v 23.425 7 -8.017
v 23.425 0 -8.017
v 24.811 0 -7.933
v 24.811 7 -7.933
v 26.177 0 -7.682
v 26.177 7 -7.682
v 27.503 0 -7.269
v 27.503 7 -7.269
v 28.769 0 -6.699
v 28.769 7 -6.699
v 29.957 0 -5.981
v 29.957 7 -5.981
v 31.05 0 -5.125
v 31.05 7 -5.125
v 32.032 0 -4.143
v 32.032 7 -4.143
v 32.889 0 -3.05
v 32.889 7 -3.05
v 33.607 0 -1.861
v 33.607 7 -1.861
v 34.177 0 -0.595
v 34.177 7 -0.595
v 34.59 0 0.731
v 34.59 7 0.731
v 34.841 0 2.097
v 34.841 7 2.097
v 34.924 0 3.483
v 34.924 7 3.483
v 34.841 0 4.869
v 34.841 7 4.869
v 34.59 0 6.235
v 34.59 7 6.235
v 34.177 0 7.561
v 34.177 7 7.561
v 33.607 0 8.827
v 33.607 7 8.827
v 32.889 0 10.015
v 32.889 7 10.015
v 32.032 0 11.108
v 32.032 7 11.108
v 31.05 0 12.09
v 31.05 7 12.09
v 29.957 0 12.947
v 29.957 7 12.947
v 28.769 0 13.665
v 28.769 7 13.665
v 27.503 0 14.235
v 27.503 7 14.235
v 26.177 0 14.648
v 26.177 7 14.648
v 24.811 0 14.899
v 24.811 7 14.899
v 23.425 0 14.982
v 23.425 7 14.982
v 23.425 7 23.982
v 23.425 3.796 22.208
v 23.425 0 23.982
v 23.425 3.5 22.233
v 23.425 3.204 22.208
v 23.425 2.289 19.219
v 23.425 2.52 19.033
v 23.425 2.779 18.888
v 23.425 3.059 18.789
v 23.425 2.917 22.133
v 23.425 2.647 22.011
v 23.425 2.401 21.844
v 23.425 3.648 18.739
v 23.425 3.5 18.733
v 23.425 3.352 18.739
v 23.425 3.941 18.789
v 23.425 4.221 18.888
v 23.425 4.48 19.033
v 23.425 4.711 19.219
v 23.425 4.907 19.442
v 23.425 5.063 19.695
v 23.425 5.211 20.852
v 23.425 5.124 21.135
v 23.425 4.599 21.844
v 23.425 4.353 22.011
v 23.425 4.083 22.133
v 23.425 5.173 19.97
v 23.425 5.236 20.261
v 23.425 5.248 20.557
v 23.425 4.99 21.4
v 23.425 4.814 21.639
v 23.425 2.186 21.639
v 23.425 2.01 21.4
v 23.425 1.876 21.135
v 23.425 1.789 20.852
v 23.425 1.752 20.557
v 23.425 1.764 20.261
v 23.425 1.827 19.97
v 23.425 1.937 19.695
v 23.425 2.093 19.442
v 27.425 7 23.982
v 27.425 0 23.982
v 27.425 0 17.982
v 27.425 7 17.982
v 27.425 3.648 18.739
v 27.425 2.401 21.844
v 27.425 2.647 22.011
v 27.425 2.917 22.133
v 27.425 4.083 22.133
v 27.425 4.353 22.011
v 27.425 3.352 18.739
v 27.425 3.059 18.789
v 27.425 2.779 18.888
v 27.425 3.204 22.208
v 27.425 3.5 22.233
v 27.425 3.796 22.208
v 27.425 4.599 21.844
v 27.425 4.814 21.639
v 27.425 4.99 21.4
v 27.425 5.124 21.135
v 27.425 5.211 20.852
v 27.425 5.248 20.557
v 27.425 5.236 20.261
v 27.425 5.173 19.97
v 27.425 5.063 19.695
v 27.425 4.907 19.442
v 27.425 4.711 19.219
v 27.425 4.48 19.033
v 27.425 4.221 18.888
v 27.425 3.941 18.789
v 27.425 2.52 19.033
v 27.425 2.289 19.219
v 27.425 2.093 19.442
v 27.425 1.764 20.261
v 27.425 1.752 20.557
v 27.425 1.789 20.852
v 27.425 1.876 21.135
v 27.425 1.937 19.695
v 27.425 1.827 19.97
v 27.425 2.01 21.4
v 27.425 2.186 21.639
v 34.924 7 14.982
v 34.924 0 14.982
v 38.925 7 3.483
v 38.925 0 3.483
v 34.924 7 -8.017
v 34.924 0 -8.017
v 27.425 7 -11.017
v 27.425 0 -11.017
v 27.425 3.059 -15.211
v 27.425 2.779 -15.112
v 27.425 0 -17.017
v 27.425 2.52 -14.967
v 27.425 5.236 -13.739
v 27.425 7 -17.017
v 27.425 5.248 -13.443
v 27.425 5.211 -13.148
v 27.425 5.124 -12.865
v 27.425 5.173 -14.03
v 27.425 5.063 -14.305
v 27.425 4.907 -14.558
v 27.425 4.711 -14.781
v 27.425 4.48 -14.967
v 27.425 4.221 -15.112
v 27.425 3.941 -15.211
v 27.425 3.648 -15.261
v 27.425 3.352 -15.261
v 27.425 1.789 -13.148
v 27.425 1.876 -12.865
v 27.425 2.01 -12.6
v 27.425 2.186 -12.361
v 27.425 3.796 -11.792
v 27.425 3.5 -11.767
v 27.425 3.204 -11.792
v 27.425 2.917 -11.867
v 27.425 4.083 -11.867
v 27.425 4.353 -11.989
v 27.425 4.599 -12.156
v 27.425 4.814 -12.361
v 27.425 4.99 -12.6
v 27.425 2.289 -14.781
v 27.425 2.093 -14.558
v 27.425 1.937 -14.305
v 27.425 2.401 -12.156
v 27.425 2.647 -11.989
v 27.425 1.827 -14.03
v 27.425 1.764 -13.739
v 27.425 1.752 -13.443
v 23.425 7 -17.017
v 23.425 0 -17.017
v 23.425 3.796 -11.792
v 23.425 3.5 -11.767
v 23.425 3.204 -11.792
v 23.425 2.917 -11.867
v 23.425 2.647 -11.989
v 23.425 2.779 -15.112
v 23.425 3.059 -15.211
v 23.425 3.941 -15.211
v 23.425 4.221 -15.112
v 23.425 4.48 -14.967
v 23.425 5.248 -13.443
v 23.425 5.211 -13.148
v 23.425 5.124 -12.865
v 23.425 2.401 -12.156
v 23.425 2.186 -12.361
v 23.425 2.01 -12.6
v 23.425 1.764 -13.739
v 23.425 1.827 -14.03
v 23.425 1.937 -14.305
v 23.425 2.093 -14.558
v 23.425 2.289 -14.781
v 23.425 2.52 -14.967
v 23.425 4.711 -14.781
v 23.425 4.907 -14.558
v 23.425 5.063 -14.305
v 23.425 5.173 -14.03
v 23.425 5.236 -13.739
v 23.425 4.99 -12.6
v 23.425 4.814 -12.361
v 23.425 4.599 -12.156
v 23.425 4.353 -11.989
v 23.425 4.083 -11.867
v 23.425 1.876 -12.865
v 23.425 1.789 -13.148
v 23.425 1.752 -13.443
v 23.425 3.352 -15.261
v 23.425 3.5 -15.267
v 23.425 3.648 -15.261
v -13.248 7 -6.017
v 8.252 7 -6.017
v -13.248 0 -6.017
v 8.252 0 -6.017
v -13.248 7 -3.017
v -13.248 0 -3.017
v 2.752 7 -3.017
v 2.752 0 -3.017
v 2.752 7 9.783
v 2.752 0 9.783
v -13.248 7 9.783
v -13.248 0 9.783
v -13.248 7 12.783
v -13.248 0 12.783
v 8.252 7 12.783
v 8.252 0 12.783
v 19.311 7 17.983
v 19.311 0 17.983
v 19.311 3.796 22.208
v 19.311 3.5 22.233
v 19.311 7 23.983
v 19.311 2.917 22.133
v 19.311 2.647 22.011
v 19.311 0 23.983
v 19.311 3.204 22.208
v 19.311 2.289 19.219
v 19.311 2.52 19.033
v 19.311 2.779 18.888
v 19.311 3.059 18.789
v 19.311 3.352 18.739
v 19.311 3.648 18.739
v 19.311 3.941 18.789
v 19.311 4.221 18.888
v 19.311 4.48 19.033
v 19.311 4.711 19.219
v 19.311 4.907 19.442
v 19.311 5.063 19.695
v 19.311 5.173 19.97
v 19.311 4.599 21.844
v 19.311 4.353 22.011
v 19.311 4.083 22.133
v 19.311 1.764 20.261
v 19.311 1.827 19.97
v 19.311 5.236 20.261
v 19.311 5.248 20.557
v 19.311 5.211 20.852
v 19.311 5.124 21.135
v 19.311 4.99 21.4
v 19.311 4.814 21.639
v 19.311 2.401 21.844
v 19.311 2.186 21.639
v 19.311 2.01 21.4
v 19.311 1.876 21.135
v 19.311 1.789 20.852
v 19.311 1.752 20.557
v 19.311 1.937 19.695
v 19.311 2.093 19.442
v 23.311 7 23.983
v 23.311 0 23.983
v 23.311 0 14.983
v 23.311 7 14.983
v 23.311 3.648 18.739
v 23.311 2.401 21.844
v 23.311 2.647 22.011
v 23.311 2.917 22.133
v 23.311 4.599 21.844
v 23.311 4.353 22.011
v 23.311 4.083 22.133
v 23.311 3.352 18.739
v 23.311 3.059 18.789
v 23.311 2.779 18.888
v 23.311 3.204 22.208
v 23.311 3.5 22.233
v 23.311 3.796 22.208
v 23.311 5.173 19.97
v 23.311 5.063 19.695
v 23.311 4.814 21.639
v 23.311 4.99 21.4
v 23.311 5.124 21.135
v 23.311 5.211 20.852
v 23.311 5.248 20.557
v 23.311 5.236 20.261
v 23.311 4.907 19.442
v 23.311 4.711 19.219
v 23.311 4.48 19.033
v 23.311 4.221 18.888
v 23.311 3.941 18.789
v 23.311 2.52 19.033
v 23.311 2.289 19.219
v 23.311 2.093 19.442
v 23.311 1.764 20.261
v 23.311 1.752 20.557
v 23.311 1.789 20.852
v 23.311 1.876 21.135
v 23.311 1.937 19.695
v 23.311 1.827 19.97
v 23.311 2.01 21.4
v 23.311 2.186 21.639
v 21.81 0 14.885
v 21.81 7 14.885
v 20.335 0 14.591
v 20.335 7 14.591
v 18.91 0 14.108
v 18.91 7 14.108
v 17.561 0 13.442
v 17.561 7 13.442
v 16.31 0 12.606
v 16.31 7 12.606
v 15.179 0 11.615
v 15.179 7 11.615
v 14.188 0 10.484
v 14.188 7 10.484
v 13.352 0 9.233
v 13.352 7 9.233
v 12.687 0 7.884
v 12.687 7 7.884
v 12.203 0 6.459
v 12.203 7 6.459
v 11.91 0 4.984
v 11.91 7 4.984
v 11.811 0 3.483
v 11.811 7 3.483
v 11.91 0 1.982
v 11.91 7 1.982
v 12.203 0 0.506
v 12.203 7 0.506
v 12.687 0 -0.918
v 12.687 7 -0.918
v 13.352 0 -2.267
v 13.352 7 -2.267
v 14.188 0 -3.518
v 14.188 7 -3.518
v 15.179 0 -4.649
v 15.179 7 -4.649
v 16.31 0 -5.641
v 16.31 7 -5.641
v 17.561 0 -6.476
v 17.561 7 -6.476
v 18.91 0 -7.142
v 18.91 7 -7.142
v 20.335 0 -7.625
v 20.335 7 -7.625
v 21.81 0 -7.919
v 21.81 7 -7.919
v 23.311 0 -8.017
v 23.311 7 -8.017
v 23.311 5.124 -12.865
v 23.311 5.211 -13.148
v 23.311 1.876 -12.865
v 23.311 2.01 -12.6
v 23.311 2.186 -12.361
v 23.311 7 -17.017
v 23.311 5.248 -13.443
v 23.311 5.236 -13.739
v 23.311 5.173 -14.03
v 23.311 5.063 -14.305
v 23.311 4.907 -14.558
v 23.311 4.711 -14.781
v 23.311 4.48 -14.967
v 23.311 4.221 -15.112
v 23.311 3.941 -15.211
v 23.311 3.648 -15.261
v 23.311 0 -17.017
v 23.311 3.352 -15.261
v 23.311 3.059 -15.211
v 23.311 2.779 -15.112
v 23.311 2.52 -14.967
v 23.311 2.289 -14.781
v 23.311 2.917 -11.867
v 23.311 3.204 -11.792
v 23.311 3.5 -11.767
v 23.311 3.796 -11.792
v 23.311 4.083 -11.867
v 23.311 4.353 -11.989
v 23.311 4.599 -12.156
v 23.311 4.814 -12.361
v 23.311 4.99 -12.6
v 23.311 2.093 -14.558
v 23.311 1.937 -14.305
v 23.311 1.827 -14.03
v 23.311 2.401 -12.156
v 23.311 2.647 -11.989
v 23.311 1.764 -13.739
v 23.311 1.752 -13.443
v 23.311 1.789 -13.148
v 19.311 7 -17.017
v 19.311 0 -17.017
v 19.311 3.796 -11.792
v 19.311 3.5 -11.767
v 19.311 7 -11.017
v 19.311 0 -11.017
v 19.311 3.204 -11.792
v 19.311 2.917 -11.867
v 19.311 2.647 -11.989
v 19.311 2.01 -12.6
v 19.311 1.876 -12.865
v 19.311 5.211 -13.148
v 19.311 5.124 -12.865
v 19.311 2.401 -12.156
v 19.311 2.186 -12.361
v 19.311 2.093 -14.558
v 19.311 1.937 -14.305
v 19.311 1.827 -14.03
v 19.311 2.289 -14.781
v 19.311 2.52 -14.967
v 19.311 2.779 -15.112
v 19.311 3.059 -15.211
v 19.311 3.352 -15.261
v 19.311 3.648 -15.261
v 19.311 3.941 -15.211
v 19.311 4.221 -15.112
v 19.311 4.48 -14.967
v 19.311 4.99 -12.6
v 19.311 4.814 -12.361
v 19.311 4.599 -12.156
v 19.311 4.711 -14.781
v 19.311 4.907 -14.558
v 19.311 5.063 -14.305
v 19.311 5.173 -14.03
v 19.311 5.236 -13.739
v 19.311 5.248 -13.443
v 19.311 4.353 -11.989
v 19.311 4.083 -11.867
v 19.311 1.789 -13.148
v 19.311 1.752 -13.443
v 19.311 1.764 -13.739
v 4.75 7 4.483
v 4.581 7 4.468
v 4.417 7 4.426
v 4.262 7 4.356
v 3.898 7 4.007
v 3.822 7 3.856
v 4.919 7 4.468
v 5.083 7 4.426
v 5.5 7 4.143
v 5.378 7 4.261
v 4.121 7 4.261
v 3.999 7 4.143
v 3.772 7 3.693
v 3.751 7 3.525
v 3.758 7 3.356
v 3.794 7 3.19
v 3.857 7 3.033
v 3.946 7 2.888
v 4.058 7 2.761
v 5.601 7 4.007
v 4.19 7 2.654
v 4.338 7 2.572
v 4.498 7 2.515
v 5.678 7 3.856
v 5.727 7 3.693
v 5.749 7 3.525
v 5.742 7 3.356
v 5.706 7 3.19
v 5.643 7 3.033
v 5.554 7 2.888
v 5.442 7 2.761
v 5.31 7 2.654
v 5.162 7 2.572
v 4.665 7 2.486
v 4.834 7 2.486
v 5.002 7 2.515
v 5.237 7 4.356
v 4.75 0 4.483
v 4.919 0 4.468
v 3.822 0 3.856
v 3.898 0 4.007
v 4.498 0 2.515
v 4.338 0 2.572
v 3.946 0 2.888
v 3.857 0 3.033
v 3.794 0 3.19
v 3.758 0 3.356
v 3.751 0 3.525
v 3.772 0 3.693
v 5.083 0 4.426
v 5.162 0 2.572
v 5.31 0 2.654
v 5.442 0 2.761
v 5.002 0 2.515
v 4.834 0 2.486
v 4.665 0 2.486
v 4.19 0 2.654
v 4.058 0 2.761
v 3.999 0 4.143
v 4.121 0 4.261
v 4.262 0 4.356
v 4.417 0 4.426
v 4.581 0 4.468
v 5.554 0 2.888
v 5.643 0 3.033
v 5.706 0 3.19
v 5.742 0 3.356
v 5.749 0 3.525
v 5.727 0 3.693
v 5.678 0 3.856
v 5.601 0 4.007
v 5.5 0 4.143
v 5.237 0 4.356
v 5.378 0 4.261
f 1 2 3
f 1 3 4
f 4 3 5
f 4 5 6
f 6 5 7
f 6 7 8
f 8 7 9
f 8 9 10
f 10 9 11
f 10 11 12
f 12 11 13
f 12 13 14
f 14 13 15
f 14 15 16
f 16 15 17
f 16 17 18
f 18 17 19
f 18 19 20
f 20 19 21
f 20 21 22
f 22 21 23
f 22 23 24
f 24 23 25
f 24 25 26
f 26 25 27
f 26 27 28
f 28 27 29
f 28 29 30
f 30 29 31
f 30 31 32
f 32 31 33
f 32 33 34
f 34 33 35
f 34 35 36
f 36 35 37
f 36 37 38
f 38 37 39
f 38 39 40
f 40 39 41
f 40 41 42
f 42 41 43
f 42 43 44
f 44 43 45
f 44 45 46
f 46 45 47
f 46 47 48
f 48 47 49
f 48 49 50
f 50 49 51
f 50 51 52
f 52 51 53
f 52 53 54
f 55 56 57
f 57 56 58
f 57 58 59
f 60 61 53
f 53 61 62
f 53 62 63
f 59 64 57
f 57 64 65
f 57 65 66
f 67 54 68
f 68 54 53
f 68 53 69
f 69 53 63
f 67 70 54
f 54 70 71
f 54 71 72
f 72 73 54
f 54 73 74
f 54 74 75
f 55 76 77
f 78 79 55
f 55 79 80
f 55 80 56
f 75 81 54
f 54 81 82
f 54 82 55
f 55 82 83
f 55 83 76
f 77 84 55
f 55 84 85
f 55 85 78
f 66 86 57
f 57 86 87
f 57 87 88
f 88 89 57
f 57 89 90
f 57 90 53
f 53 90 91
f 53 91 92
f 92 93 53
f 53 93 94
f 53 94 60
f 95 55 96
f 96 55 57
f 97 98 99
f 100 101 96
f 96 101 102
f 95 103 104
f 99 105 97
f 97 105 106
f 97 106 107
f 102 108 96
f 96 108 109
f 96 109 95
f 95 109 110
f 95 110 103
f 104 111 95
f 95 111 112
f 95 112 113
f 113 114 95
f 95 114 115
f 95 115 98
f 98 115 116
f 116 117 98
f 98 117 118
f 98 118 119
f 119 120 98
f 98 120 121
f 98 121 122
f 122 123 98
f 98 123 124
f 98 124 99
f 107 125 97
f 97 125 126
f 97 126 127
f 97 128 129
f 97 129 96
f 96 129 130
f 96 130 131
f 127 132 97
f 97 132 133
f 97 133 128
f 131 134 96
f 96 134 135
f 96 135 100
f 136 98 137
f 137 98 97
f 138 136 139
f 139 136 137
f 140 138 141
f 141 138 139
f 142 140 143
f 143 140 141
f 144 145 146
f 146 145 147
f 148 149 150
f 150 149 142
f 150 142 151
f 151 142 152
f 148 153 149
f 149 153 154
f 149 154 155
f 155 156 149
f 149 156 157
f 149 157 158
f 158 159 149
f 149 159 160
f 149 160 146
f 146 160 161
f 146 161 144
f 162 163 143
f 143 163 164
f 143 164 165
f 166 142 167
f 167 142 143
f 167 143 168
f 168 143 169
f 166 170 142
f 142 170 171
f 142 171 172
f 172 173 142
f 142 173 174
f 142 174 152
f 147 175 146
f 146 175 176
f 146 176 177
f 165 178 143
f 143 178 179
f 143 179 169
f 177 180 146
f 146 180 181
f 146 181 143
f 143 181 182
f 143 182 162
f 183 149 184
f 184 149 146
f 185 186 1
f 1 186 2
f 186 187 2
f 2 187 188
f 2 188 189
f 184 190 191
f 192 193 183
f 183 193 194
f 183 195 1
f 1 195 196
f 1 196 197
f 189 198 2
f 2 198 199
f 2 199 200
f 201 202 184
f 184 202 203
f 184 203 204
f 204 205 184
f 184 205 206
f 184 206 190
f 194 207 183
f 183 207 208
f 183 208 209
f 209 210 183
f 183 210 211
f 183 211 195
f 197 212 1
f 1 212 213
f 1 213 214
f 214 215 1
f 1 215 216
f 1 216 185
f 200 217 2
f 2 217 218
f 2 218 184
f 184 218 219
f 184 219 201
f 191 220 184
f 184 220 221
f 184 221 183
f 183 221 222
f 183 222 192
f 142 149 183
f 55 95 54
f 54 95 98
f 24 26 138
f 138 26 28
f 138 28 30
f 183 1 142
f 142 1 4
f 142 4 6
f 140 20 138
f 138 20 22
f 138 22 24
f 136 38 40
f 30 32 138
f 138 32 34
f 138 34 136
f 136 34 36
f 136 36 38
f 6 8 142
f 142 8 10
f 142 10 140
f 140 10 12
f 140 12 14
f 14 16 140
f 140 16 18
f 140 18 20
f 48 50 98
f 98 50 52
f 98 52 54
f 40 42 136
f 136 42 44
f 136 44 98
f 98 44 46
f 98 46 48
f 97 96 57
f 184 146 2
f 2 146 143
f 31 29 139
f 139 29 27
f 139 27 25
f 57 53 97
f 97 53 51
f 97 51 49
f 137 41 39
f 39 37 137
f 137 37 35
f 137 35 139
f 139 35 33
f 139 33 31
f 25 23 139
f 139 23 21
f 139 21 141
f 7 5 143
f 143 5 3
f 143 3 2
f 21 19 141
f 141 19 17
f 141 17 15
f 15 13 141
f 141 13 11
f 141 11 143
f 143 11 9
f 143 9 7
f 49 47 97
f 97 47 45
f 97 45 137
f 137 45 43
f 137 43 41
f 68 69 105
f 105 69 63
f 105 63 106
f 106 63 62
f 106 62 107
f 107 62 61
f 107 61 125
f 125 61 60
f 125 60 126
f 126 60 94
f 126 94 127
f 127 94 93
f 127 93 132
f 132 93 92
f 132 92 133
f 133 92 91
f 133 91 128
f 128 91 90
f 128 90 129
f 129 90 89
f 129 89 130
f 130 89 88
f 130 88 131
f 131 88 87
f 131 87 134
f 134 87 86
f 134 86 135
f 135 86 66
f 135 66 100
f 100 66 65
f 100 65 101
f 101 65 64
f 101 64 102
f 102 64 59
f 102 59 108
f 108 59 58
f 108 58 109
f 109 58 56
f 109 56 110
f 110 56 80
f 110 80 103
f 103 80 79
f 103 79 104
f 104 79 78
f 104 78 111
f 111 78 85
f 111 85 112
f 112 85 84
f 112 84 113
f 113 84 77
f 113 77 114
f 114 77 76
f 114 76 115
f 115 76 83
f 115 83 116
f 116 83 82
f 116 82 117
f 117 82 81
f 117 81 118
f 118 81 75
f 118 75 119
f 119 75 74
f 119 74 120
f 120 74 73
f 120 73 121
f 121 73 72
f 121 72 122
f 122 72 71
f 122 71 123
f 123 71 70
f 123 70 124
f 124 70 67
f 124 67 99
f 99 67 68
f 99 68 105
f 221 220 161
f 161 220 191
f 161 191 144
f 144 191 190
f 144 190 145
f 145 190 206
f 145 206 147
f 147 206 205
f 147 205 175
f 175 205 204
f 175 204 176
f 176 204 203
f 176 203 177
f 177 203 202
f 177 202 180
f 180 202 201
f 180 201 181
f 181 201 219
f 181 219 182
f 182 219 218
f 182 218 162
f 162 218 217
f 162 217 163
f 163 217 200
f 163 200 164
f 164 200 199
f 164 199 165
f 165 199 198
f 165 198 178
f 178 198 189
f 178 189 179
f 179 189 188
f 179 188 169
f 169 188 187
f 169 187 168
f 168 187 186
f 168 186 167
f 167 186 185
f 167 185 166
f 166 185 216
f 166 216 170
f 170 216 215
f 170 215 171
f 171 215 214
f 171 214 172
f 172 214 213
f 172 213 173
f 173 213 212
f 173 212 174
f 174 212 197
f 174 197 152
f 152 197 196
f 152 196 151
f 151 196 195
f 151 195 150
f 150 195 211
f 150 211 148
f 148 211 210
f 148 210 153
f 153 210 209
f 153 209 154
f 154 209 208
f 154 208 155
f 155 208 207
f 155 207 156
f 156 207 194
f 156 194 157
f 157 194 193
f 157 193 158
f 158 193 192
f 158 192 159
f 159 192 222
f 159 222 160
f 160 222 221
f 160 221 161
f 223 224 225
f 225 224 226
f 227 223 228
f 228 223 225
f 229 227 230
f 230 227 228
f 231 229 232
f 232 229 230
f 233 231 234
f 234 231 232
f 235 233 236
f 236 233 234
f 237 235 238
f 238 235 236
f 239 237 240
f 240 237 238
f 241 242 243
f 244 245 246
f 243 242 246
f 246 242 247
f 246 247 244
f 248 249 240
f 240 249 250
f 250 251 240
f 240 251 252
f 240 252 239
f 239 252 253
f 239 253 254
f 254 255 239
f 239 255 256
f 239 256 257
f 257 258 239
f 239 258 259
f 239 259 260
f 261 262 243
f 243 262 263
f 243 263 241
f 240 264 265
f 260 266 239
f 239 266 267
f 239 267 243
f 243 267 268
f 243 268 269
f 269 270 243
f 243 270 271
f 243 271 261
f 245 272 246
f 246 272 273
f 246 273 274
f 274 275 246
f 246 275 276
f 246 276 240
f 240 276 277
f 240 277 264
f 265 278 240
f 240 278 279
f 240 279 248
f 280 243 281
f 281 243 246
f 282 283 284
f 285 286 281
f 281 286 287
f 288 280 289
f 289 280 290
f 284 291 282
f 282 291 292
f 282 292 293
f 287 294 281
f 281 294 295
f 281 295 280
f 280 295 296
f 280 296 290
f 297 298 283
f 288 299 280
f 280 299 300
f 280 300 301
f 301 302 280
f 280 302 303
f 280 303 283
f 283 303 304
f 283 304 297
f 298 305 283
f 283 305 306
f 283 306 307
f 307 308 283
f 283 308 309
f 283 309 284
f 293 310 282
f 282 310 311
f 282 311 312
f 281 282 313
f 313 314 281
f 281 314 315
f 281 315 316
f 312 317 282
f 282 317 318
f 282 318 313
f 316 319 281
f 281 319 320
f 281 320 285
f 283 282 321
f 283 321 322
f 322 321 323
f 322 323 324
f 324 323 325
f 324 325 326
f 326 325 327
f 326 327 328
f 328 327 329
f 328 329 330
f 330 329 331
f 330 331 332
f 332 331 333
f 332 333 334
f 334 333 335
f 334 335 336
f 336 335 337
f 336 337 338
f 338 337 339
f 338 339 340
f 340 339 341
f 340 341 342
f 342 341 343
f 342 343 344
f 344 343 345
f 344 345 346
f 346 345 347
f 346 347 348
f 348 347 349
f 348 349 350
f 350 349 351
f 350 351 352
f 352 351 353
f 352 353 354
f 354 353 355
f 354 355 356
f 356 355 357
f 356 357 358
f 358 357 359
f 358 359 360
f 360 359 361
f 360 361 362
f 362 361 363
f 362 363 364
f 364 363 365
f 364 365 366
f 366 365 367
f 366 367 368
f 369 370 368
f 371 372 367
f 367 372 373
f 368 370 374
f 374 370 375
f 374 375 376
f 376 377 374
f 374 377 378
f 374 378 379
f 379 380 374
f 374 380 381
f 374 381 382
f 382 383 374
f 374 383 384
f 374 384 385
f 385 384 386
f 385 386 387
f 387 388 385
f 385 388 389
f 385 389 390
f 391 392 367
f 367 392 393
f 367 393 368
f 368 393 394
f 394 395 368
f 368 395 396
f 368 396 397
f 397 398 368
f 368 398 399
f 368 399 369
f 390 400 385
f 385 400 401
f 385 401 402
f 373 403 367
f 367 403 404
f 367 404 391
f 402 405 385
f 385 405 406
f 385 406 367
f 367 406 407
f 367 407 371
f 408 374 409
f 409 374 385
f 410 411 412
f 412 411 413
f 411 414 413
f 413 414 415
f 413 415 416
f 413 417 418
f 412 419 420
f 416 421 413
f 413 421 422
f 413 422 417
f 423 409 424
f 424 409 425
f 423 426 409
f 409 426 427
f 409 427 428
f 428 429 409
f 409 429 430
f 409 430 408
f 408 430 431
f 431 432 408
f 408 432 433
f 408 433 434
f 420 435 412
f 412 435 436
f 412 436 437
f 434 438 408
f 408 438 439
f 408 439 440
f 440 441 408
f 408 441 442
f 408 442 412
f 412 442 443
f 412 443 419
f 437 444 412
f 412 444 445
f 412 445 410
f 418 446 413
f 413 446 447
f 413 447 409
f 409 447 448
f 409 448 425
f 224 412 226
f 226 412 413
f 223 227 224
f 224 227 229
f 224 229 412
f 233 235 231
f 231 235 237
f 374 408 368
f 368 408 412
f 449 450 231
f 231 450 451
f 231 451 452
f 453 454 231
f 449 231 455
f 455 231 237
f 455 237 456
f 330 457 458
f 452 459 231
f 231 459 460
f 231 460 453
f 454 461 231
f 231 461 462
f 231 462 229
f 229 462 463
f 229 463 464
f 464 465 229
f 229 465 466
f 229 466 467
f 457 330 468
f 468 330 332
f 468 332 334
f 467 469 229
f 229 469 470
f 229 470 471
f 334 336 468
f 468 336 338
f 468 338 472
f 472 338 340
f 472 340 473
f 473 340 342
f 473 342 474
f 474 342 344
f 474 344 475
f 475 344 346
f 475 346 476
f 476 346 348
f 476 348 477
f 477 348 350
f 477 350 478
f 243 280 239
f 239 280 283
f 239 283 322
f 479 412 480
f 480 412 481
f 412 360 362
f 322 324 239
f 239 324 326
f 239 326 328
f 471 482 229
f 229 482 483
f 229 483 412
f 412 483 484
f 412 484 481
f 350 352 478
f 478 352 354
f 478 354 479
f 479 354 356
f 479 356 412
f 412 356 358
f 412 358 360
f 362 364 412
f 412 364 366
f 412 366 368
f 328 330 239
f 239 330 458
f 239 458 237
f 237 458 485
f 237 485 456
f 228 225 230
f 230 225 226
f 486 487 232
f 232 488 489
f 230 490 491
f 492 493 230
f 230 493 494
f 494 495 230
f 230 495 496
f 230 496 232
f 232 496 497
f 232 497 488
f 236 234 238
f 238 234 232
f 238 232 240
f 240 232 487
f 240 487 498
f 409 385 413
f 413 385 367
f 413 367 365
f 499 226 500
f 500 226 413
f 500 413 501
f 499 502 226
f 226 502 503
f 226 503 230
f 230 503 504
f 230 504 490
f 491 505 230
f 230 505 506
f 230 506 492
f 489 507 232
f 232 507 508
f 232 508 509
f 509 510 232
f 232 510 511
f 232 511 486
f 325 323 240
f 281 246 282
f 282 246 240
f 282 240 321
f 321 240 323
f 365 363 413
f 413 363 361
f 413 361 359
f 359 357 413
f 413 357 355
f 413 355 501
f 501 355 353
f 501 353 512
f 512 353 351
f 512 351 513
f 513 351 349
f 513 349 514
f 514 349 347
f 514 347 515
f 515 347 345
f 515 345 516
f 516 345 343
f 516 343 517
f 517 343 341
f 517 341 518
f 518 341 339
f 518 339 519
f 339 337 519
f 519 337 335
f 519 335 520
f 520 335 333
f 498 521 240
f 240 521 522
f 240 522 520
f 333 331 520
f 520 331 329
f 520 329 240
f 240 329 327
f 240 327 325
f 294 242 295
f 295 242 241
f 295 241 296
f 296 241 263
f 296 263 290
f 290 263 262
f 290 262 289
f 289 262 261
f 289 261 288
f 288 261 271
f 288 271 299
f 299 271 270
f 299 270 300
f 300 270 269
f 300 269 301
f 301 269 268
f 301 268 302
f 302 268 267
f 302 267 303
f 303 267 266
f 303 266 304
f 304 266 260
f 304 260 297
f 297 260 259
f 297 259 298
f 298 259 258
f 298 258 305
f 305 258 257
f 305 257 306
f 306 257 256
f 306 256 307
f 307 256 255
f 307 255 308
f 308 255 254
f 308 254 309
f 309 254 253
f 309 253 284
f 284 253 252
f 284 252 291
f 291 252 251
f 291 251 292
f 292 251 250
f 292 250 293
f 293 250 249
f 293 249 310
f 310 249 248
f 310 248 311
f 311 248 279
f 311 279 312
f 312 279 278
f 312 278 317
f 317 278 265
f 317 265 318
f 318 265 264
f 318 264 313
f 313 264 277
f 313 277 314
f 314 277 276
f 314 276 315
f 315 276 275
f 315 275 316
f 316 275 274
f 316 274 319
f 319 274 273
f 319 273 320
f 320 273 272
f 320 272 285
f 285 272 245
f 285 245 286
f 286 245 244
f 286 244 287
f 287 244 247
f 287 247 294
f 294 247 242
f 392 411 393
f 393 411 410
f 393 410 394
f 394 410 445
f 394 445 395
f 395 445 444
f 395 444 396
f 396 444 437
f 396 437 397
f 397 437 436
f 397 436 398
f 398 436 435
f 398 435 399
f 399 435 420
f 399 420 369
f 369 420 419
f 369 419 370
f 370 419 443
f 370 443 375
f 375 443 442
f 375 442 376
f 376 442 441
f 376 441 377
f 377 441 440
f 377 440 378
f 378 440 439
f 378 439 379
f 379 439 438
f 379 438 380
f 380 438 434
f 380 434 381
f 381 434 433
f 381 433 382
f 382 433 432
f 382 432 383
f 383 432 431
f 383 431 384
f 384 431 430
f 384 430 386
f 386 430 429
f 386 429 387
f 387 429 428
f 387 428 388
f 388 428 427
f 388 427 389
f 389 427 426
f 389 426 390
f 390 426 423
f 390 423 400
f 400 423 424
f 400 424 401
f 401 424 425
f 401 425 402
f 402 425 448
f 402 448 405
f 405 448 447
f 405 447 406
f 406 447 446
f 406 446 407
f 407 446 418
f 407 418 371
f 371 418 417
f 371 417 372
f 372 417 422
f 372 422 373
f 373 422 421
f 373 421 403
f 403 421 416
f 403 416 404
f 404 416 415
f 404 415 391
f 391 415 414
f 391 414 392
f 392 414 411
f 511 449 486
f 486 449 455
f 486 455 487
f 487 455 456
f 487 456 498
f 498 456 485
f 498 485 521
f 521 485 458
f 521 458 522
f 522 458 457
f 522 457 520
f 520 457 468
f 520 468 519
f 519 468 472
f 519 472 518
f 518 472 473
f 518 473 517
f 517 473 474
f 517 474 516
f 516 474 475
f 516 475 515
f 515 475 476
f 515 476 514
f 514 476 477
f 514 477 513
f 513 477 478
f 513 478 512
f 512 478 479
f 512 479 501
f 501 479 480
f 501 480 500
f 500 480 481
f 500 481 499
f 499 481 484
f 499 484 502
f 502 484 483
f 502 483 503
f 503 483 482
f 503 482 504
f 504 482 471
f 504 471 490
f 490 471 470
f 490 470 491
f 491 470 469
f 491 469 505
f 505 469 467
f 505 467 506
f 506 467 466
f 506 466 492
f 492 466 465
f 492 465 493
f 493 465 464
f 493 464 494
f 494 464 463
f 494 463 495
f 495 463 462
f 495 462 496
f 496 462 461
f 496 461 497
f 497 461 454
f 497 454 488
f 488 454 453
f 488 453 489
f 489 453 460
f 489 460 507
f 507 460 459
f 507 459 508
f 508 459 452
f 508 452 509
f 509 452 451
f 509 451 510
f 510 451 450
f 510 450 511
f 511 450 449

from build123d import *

# Parameters (mm, degrees)
EXTRUDE_1_DEPTH     = 7
EXTRUDE_2_DEPTH     = 7
SKETCH_6_R          = 1.75
CUT_EXTRUDE_1_DEPTH = 42.039863202
SKETCH_4_R          = 1.75
CUT_EXTRUDE_2_DEPTH = 42.039863202
SKETCH_7_R          = 1
CUT_EXTRUDE_3_DEPTH = 47.252916804


with BuildPart() as part:
    # Эскиз1 → Бобышка-Вытянуть1 (new body)
    with BuildSketch(Plane(origin=(0, 0, 0), x_dir=(1, 0, 0), z_dir=(0, 1, 0))):
        with BuildLine():
            Line((-13.247814837, 6.017090357), (-13.247814837, 3.017090357))
            Line((-13.247814837, 3.017090357), (2.752185163, 3.017090357))
            Line((2.752185163, 3.017090357), (2.752185163, -9.782909643))
            Line((2.752185163, -9.782909643), (-13.247814837, -9.782909643))
            Line((-13.247814837, -9.782909643), (-13.247814837, -12.782909643))
            Line((-13.247814837, -12.782909643), (8.252185163, -12.782909643))
            Line((8.252185163, -12.782909643), (19.311214889, -17.982909643))
            Line((19.311214889, -17.982909643), (19.311214889, -23.982909643))
            Line((19.311214889, -23.982909643), (23.311214889, -23.982909643))
            Line((23.311214889, -23.982909643), (23.311214889, -14.982909643))
            ThreePointArc((23.311214889, -14.982909643), (11.811214889, -3.482909643), (23.311214889, 8.017090357))
            Line((23.311214889, 8.017090357), (23.311214889, 17.017090357))
            Line((23.311214889, 17.017090357), (19.311214889, 17.017090357))
            Line((19.311214889, 17.017090357), (19.311214889, 11.017090357))
            Line((19.311214889, 11.017090357), (8.252185163, 6.017090357))
            Line((8.252185163, 6.017090357), (-13.247814837, 6.017090357))
        make_face()
    extrude(amount=EXTRUDE_1_DEPTH)


with BuildPart() as body_2:
    # Эскиз2 → Бобышка-Вытянуть2 (new body)
    with BuildSketch(Plane(origin=(0, 0, 0), x_dir=(1, 0, 0), z_dir=(0, 1, 0))):
        with BuildLine():
            Line((23.424958034, -14.982347129), (23.424958034, -23.982347129))
            Line((23.424958034, -23.982347129), (27.424958034, -23.982347129))
            Line((27.424958034, -23.982347129), (27.424958034, -17.982347129))
            Line((27.424958034, -17.982347129), (34.924395521, -14.982347129))
            Line((34.924395521, -14.982347129), (38.924958034, -3.482909643))
            Line((38.924958034, -3.482909643), (34.924395521, 8.016527843))
            Line((34.924395521, 8.016527843), (27.424958034, 11.016527843))
            Line((27.424958034, 11.016527843), (27.424958034, 17.016527843))
            Line((27.424958034, 17.016527843), (23.424958034, 17.016527843))
            Line((23.424958034, 17.016527843), (23.424958034, 8.016527843))
            ThreePointArc((23.424958034, 8.016527843), (34.924395521, -3.482909643), (23.424958034, -14.982347129))
        make_face()
    extrude(amount=EXTRUDE_2_DEPTH)


with BuildPart() as cut_extrude_1_tool:
    # Эскиз6 → Вырез-Вытянуть1 (new, through all)
    with BuildSketch(Plane.ZY.offset(-19.311214889)):
        with Locations((20.482909643, 3.5)):
            Circle(SKETCH_6_R)
    extrude(amount=-CUT_EXTRUDE_1_DEPTH)


with BuildPart() as part_1:
    add(part.part)

    # Вырез-Вытянуть1: cut by cut_extrude_1_tool
    add(cut_extrude_1_tool.part, mode=Mode.SUBTRACT)


with BuildPart() as body_2_1:
    add(body_2.part)

    # Вырез-Вытянуть1: cut by cut_extrude_1_tool
    add(cut_extrude_1_tool.part, mode=Mode.SUBTRACT)


with BuildPart() as cut_extrude_2_tool:
    # Эскиз4 → Вырез-Вытянуть2 (new, through all)
    with BuildSketch(Plane.ZY.offset(-19.311214889)):
        with Locations((-13.517090357, 3.5)):
            Circle(SKETCH_4_R)
    extrude(amount=-CUT_EXTRUDE_2_DEPTH)


with BuildPart() as part_2:
    add(part_1.part)

    # Вырез-Вытянуть2: cut by cut_extrude_2_tool
    add(cut_extrude_2_tool.part, mode=Mode.SUBTRACT)

    # Эскиз7 → Вырез-Вытянуть3 (cut, through all)
    with BuildSketch(Plane(origin=(0, 7, 0), x_dir=(1, 0, 0), z_dir=(0, 1, 0))):
        with Locations(Location((4.749689841, -3.482784877, 0), (0, 0, 270))):
            Circle(SKETCH_7_R)
    extrude(amount=-CUT_EXTRUDE_3_DEPTH, mode=Mode.SUBTRACT)


with BuildPart() as body_2_2:
    add(body_2_1.part)

    # Вырез-Вытянуть2: cut by cut_extrude_2_tool
    add(cut_extrude_2_tool.part, mode=Mode.SUBTRACT)


solid = Compound([part_2.part, body_2_2.part])
